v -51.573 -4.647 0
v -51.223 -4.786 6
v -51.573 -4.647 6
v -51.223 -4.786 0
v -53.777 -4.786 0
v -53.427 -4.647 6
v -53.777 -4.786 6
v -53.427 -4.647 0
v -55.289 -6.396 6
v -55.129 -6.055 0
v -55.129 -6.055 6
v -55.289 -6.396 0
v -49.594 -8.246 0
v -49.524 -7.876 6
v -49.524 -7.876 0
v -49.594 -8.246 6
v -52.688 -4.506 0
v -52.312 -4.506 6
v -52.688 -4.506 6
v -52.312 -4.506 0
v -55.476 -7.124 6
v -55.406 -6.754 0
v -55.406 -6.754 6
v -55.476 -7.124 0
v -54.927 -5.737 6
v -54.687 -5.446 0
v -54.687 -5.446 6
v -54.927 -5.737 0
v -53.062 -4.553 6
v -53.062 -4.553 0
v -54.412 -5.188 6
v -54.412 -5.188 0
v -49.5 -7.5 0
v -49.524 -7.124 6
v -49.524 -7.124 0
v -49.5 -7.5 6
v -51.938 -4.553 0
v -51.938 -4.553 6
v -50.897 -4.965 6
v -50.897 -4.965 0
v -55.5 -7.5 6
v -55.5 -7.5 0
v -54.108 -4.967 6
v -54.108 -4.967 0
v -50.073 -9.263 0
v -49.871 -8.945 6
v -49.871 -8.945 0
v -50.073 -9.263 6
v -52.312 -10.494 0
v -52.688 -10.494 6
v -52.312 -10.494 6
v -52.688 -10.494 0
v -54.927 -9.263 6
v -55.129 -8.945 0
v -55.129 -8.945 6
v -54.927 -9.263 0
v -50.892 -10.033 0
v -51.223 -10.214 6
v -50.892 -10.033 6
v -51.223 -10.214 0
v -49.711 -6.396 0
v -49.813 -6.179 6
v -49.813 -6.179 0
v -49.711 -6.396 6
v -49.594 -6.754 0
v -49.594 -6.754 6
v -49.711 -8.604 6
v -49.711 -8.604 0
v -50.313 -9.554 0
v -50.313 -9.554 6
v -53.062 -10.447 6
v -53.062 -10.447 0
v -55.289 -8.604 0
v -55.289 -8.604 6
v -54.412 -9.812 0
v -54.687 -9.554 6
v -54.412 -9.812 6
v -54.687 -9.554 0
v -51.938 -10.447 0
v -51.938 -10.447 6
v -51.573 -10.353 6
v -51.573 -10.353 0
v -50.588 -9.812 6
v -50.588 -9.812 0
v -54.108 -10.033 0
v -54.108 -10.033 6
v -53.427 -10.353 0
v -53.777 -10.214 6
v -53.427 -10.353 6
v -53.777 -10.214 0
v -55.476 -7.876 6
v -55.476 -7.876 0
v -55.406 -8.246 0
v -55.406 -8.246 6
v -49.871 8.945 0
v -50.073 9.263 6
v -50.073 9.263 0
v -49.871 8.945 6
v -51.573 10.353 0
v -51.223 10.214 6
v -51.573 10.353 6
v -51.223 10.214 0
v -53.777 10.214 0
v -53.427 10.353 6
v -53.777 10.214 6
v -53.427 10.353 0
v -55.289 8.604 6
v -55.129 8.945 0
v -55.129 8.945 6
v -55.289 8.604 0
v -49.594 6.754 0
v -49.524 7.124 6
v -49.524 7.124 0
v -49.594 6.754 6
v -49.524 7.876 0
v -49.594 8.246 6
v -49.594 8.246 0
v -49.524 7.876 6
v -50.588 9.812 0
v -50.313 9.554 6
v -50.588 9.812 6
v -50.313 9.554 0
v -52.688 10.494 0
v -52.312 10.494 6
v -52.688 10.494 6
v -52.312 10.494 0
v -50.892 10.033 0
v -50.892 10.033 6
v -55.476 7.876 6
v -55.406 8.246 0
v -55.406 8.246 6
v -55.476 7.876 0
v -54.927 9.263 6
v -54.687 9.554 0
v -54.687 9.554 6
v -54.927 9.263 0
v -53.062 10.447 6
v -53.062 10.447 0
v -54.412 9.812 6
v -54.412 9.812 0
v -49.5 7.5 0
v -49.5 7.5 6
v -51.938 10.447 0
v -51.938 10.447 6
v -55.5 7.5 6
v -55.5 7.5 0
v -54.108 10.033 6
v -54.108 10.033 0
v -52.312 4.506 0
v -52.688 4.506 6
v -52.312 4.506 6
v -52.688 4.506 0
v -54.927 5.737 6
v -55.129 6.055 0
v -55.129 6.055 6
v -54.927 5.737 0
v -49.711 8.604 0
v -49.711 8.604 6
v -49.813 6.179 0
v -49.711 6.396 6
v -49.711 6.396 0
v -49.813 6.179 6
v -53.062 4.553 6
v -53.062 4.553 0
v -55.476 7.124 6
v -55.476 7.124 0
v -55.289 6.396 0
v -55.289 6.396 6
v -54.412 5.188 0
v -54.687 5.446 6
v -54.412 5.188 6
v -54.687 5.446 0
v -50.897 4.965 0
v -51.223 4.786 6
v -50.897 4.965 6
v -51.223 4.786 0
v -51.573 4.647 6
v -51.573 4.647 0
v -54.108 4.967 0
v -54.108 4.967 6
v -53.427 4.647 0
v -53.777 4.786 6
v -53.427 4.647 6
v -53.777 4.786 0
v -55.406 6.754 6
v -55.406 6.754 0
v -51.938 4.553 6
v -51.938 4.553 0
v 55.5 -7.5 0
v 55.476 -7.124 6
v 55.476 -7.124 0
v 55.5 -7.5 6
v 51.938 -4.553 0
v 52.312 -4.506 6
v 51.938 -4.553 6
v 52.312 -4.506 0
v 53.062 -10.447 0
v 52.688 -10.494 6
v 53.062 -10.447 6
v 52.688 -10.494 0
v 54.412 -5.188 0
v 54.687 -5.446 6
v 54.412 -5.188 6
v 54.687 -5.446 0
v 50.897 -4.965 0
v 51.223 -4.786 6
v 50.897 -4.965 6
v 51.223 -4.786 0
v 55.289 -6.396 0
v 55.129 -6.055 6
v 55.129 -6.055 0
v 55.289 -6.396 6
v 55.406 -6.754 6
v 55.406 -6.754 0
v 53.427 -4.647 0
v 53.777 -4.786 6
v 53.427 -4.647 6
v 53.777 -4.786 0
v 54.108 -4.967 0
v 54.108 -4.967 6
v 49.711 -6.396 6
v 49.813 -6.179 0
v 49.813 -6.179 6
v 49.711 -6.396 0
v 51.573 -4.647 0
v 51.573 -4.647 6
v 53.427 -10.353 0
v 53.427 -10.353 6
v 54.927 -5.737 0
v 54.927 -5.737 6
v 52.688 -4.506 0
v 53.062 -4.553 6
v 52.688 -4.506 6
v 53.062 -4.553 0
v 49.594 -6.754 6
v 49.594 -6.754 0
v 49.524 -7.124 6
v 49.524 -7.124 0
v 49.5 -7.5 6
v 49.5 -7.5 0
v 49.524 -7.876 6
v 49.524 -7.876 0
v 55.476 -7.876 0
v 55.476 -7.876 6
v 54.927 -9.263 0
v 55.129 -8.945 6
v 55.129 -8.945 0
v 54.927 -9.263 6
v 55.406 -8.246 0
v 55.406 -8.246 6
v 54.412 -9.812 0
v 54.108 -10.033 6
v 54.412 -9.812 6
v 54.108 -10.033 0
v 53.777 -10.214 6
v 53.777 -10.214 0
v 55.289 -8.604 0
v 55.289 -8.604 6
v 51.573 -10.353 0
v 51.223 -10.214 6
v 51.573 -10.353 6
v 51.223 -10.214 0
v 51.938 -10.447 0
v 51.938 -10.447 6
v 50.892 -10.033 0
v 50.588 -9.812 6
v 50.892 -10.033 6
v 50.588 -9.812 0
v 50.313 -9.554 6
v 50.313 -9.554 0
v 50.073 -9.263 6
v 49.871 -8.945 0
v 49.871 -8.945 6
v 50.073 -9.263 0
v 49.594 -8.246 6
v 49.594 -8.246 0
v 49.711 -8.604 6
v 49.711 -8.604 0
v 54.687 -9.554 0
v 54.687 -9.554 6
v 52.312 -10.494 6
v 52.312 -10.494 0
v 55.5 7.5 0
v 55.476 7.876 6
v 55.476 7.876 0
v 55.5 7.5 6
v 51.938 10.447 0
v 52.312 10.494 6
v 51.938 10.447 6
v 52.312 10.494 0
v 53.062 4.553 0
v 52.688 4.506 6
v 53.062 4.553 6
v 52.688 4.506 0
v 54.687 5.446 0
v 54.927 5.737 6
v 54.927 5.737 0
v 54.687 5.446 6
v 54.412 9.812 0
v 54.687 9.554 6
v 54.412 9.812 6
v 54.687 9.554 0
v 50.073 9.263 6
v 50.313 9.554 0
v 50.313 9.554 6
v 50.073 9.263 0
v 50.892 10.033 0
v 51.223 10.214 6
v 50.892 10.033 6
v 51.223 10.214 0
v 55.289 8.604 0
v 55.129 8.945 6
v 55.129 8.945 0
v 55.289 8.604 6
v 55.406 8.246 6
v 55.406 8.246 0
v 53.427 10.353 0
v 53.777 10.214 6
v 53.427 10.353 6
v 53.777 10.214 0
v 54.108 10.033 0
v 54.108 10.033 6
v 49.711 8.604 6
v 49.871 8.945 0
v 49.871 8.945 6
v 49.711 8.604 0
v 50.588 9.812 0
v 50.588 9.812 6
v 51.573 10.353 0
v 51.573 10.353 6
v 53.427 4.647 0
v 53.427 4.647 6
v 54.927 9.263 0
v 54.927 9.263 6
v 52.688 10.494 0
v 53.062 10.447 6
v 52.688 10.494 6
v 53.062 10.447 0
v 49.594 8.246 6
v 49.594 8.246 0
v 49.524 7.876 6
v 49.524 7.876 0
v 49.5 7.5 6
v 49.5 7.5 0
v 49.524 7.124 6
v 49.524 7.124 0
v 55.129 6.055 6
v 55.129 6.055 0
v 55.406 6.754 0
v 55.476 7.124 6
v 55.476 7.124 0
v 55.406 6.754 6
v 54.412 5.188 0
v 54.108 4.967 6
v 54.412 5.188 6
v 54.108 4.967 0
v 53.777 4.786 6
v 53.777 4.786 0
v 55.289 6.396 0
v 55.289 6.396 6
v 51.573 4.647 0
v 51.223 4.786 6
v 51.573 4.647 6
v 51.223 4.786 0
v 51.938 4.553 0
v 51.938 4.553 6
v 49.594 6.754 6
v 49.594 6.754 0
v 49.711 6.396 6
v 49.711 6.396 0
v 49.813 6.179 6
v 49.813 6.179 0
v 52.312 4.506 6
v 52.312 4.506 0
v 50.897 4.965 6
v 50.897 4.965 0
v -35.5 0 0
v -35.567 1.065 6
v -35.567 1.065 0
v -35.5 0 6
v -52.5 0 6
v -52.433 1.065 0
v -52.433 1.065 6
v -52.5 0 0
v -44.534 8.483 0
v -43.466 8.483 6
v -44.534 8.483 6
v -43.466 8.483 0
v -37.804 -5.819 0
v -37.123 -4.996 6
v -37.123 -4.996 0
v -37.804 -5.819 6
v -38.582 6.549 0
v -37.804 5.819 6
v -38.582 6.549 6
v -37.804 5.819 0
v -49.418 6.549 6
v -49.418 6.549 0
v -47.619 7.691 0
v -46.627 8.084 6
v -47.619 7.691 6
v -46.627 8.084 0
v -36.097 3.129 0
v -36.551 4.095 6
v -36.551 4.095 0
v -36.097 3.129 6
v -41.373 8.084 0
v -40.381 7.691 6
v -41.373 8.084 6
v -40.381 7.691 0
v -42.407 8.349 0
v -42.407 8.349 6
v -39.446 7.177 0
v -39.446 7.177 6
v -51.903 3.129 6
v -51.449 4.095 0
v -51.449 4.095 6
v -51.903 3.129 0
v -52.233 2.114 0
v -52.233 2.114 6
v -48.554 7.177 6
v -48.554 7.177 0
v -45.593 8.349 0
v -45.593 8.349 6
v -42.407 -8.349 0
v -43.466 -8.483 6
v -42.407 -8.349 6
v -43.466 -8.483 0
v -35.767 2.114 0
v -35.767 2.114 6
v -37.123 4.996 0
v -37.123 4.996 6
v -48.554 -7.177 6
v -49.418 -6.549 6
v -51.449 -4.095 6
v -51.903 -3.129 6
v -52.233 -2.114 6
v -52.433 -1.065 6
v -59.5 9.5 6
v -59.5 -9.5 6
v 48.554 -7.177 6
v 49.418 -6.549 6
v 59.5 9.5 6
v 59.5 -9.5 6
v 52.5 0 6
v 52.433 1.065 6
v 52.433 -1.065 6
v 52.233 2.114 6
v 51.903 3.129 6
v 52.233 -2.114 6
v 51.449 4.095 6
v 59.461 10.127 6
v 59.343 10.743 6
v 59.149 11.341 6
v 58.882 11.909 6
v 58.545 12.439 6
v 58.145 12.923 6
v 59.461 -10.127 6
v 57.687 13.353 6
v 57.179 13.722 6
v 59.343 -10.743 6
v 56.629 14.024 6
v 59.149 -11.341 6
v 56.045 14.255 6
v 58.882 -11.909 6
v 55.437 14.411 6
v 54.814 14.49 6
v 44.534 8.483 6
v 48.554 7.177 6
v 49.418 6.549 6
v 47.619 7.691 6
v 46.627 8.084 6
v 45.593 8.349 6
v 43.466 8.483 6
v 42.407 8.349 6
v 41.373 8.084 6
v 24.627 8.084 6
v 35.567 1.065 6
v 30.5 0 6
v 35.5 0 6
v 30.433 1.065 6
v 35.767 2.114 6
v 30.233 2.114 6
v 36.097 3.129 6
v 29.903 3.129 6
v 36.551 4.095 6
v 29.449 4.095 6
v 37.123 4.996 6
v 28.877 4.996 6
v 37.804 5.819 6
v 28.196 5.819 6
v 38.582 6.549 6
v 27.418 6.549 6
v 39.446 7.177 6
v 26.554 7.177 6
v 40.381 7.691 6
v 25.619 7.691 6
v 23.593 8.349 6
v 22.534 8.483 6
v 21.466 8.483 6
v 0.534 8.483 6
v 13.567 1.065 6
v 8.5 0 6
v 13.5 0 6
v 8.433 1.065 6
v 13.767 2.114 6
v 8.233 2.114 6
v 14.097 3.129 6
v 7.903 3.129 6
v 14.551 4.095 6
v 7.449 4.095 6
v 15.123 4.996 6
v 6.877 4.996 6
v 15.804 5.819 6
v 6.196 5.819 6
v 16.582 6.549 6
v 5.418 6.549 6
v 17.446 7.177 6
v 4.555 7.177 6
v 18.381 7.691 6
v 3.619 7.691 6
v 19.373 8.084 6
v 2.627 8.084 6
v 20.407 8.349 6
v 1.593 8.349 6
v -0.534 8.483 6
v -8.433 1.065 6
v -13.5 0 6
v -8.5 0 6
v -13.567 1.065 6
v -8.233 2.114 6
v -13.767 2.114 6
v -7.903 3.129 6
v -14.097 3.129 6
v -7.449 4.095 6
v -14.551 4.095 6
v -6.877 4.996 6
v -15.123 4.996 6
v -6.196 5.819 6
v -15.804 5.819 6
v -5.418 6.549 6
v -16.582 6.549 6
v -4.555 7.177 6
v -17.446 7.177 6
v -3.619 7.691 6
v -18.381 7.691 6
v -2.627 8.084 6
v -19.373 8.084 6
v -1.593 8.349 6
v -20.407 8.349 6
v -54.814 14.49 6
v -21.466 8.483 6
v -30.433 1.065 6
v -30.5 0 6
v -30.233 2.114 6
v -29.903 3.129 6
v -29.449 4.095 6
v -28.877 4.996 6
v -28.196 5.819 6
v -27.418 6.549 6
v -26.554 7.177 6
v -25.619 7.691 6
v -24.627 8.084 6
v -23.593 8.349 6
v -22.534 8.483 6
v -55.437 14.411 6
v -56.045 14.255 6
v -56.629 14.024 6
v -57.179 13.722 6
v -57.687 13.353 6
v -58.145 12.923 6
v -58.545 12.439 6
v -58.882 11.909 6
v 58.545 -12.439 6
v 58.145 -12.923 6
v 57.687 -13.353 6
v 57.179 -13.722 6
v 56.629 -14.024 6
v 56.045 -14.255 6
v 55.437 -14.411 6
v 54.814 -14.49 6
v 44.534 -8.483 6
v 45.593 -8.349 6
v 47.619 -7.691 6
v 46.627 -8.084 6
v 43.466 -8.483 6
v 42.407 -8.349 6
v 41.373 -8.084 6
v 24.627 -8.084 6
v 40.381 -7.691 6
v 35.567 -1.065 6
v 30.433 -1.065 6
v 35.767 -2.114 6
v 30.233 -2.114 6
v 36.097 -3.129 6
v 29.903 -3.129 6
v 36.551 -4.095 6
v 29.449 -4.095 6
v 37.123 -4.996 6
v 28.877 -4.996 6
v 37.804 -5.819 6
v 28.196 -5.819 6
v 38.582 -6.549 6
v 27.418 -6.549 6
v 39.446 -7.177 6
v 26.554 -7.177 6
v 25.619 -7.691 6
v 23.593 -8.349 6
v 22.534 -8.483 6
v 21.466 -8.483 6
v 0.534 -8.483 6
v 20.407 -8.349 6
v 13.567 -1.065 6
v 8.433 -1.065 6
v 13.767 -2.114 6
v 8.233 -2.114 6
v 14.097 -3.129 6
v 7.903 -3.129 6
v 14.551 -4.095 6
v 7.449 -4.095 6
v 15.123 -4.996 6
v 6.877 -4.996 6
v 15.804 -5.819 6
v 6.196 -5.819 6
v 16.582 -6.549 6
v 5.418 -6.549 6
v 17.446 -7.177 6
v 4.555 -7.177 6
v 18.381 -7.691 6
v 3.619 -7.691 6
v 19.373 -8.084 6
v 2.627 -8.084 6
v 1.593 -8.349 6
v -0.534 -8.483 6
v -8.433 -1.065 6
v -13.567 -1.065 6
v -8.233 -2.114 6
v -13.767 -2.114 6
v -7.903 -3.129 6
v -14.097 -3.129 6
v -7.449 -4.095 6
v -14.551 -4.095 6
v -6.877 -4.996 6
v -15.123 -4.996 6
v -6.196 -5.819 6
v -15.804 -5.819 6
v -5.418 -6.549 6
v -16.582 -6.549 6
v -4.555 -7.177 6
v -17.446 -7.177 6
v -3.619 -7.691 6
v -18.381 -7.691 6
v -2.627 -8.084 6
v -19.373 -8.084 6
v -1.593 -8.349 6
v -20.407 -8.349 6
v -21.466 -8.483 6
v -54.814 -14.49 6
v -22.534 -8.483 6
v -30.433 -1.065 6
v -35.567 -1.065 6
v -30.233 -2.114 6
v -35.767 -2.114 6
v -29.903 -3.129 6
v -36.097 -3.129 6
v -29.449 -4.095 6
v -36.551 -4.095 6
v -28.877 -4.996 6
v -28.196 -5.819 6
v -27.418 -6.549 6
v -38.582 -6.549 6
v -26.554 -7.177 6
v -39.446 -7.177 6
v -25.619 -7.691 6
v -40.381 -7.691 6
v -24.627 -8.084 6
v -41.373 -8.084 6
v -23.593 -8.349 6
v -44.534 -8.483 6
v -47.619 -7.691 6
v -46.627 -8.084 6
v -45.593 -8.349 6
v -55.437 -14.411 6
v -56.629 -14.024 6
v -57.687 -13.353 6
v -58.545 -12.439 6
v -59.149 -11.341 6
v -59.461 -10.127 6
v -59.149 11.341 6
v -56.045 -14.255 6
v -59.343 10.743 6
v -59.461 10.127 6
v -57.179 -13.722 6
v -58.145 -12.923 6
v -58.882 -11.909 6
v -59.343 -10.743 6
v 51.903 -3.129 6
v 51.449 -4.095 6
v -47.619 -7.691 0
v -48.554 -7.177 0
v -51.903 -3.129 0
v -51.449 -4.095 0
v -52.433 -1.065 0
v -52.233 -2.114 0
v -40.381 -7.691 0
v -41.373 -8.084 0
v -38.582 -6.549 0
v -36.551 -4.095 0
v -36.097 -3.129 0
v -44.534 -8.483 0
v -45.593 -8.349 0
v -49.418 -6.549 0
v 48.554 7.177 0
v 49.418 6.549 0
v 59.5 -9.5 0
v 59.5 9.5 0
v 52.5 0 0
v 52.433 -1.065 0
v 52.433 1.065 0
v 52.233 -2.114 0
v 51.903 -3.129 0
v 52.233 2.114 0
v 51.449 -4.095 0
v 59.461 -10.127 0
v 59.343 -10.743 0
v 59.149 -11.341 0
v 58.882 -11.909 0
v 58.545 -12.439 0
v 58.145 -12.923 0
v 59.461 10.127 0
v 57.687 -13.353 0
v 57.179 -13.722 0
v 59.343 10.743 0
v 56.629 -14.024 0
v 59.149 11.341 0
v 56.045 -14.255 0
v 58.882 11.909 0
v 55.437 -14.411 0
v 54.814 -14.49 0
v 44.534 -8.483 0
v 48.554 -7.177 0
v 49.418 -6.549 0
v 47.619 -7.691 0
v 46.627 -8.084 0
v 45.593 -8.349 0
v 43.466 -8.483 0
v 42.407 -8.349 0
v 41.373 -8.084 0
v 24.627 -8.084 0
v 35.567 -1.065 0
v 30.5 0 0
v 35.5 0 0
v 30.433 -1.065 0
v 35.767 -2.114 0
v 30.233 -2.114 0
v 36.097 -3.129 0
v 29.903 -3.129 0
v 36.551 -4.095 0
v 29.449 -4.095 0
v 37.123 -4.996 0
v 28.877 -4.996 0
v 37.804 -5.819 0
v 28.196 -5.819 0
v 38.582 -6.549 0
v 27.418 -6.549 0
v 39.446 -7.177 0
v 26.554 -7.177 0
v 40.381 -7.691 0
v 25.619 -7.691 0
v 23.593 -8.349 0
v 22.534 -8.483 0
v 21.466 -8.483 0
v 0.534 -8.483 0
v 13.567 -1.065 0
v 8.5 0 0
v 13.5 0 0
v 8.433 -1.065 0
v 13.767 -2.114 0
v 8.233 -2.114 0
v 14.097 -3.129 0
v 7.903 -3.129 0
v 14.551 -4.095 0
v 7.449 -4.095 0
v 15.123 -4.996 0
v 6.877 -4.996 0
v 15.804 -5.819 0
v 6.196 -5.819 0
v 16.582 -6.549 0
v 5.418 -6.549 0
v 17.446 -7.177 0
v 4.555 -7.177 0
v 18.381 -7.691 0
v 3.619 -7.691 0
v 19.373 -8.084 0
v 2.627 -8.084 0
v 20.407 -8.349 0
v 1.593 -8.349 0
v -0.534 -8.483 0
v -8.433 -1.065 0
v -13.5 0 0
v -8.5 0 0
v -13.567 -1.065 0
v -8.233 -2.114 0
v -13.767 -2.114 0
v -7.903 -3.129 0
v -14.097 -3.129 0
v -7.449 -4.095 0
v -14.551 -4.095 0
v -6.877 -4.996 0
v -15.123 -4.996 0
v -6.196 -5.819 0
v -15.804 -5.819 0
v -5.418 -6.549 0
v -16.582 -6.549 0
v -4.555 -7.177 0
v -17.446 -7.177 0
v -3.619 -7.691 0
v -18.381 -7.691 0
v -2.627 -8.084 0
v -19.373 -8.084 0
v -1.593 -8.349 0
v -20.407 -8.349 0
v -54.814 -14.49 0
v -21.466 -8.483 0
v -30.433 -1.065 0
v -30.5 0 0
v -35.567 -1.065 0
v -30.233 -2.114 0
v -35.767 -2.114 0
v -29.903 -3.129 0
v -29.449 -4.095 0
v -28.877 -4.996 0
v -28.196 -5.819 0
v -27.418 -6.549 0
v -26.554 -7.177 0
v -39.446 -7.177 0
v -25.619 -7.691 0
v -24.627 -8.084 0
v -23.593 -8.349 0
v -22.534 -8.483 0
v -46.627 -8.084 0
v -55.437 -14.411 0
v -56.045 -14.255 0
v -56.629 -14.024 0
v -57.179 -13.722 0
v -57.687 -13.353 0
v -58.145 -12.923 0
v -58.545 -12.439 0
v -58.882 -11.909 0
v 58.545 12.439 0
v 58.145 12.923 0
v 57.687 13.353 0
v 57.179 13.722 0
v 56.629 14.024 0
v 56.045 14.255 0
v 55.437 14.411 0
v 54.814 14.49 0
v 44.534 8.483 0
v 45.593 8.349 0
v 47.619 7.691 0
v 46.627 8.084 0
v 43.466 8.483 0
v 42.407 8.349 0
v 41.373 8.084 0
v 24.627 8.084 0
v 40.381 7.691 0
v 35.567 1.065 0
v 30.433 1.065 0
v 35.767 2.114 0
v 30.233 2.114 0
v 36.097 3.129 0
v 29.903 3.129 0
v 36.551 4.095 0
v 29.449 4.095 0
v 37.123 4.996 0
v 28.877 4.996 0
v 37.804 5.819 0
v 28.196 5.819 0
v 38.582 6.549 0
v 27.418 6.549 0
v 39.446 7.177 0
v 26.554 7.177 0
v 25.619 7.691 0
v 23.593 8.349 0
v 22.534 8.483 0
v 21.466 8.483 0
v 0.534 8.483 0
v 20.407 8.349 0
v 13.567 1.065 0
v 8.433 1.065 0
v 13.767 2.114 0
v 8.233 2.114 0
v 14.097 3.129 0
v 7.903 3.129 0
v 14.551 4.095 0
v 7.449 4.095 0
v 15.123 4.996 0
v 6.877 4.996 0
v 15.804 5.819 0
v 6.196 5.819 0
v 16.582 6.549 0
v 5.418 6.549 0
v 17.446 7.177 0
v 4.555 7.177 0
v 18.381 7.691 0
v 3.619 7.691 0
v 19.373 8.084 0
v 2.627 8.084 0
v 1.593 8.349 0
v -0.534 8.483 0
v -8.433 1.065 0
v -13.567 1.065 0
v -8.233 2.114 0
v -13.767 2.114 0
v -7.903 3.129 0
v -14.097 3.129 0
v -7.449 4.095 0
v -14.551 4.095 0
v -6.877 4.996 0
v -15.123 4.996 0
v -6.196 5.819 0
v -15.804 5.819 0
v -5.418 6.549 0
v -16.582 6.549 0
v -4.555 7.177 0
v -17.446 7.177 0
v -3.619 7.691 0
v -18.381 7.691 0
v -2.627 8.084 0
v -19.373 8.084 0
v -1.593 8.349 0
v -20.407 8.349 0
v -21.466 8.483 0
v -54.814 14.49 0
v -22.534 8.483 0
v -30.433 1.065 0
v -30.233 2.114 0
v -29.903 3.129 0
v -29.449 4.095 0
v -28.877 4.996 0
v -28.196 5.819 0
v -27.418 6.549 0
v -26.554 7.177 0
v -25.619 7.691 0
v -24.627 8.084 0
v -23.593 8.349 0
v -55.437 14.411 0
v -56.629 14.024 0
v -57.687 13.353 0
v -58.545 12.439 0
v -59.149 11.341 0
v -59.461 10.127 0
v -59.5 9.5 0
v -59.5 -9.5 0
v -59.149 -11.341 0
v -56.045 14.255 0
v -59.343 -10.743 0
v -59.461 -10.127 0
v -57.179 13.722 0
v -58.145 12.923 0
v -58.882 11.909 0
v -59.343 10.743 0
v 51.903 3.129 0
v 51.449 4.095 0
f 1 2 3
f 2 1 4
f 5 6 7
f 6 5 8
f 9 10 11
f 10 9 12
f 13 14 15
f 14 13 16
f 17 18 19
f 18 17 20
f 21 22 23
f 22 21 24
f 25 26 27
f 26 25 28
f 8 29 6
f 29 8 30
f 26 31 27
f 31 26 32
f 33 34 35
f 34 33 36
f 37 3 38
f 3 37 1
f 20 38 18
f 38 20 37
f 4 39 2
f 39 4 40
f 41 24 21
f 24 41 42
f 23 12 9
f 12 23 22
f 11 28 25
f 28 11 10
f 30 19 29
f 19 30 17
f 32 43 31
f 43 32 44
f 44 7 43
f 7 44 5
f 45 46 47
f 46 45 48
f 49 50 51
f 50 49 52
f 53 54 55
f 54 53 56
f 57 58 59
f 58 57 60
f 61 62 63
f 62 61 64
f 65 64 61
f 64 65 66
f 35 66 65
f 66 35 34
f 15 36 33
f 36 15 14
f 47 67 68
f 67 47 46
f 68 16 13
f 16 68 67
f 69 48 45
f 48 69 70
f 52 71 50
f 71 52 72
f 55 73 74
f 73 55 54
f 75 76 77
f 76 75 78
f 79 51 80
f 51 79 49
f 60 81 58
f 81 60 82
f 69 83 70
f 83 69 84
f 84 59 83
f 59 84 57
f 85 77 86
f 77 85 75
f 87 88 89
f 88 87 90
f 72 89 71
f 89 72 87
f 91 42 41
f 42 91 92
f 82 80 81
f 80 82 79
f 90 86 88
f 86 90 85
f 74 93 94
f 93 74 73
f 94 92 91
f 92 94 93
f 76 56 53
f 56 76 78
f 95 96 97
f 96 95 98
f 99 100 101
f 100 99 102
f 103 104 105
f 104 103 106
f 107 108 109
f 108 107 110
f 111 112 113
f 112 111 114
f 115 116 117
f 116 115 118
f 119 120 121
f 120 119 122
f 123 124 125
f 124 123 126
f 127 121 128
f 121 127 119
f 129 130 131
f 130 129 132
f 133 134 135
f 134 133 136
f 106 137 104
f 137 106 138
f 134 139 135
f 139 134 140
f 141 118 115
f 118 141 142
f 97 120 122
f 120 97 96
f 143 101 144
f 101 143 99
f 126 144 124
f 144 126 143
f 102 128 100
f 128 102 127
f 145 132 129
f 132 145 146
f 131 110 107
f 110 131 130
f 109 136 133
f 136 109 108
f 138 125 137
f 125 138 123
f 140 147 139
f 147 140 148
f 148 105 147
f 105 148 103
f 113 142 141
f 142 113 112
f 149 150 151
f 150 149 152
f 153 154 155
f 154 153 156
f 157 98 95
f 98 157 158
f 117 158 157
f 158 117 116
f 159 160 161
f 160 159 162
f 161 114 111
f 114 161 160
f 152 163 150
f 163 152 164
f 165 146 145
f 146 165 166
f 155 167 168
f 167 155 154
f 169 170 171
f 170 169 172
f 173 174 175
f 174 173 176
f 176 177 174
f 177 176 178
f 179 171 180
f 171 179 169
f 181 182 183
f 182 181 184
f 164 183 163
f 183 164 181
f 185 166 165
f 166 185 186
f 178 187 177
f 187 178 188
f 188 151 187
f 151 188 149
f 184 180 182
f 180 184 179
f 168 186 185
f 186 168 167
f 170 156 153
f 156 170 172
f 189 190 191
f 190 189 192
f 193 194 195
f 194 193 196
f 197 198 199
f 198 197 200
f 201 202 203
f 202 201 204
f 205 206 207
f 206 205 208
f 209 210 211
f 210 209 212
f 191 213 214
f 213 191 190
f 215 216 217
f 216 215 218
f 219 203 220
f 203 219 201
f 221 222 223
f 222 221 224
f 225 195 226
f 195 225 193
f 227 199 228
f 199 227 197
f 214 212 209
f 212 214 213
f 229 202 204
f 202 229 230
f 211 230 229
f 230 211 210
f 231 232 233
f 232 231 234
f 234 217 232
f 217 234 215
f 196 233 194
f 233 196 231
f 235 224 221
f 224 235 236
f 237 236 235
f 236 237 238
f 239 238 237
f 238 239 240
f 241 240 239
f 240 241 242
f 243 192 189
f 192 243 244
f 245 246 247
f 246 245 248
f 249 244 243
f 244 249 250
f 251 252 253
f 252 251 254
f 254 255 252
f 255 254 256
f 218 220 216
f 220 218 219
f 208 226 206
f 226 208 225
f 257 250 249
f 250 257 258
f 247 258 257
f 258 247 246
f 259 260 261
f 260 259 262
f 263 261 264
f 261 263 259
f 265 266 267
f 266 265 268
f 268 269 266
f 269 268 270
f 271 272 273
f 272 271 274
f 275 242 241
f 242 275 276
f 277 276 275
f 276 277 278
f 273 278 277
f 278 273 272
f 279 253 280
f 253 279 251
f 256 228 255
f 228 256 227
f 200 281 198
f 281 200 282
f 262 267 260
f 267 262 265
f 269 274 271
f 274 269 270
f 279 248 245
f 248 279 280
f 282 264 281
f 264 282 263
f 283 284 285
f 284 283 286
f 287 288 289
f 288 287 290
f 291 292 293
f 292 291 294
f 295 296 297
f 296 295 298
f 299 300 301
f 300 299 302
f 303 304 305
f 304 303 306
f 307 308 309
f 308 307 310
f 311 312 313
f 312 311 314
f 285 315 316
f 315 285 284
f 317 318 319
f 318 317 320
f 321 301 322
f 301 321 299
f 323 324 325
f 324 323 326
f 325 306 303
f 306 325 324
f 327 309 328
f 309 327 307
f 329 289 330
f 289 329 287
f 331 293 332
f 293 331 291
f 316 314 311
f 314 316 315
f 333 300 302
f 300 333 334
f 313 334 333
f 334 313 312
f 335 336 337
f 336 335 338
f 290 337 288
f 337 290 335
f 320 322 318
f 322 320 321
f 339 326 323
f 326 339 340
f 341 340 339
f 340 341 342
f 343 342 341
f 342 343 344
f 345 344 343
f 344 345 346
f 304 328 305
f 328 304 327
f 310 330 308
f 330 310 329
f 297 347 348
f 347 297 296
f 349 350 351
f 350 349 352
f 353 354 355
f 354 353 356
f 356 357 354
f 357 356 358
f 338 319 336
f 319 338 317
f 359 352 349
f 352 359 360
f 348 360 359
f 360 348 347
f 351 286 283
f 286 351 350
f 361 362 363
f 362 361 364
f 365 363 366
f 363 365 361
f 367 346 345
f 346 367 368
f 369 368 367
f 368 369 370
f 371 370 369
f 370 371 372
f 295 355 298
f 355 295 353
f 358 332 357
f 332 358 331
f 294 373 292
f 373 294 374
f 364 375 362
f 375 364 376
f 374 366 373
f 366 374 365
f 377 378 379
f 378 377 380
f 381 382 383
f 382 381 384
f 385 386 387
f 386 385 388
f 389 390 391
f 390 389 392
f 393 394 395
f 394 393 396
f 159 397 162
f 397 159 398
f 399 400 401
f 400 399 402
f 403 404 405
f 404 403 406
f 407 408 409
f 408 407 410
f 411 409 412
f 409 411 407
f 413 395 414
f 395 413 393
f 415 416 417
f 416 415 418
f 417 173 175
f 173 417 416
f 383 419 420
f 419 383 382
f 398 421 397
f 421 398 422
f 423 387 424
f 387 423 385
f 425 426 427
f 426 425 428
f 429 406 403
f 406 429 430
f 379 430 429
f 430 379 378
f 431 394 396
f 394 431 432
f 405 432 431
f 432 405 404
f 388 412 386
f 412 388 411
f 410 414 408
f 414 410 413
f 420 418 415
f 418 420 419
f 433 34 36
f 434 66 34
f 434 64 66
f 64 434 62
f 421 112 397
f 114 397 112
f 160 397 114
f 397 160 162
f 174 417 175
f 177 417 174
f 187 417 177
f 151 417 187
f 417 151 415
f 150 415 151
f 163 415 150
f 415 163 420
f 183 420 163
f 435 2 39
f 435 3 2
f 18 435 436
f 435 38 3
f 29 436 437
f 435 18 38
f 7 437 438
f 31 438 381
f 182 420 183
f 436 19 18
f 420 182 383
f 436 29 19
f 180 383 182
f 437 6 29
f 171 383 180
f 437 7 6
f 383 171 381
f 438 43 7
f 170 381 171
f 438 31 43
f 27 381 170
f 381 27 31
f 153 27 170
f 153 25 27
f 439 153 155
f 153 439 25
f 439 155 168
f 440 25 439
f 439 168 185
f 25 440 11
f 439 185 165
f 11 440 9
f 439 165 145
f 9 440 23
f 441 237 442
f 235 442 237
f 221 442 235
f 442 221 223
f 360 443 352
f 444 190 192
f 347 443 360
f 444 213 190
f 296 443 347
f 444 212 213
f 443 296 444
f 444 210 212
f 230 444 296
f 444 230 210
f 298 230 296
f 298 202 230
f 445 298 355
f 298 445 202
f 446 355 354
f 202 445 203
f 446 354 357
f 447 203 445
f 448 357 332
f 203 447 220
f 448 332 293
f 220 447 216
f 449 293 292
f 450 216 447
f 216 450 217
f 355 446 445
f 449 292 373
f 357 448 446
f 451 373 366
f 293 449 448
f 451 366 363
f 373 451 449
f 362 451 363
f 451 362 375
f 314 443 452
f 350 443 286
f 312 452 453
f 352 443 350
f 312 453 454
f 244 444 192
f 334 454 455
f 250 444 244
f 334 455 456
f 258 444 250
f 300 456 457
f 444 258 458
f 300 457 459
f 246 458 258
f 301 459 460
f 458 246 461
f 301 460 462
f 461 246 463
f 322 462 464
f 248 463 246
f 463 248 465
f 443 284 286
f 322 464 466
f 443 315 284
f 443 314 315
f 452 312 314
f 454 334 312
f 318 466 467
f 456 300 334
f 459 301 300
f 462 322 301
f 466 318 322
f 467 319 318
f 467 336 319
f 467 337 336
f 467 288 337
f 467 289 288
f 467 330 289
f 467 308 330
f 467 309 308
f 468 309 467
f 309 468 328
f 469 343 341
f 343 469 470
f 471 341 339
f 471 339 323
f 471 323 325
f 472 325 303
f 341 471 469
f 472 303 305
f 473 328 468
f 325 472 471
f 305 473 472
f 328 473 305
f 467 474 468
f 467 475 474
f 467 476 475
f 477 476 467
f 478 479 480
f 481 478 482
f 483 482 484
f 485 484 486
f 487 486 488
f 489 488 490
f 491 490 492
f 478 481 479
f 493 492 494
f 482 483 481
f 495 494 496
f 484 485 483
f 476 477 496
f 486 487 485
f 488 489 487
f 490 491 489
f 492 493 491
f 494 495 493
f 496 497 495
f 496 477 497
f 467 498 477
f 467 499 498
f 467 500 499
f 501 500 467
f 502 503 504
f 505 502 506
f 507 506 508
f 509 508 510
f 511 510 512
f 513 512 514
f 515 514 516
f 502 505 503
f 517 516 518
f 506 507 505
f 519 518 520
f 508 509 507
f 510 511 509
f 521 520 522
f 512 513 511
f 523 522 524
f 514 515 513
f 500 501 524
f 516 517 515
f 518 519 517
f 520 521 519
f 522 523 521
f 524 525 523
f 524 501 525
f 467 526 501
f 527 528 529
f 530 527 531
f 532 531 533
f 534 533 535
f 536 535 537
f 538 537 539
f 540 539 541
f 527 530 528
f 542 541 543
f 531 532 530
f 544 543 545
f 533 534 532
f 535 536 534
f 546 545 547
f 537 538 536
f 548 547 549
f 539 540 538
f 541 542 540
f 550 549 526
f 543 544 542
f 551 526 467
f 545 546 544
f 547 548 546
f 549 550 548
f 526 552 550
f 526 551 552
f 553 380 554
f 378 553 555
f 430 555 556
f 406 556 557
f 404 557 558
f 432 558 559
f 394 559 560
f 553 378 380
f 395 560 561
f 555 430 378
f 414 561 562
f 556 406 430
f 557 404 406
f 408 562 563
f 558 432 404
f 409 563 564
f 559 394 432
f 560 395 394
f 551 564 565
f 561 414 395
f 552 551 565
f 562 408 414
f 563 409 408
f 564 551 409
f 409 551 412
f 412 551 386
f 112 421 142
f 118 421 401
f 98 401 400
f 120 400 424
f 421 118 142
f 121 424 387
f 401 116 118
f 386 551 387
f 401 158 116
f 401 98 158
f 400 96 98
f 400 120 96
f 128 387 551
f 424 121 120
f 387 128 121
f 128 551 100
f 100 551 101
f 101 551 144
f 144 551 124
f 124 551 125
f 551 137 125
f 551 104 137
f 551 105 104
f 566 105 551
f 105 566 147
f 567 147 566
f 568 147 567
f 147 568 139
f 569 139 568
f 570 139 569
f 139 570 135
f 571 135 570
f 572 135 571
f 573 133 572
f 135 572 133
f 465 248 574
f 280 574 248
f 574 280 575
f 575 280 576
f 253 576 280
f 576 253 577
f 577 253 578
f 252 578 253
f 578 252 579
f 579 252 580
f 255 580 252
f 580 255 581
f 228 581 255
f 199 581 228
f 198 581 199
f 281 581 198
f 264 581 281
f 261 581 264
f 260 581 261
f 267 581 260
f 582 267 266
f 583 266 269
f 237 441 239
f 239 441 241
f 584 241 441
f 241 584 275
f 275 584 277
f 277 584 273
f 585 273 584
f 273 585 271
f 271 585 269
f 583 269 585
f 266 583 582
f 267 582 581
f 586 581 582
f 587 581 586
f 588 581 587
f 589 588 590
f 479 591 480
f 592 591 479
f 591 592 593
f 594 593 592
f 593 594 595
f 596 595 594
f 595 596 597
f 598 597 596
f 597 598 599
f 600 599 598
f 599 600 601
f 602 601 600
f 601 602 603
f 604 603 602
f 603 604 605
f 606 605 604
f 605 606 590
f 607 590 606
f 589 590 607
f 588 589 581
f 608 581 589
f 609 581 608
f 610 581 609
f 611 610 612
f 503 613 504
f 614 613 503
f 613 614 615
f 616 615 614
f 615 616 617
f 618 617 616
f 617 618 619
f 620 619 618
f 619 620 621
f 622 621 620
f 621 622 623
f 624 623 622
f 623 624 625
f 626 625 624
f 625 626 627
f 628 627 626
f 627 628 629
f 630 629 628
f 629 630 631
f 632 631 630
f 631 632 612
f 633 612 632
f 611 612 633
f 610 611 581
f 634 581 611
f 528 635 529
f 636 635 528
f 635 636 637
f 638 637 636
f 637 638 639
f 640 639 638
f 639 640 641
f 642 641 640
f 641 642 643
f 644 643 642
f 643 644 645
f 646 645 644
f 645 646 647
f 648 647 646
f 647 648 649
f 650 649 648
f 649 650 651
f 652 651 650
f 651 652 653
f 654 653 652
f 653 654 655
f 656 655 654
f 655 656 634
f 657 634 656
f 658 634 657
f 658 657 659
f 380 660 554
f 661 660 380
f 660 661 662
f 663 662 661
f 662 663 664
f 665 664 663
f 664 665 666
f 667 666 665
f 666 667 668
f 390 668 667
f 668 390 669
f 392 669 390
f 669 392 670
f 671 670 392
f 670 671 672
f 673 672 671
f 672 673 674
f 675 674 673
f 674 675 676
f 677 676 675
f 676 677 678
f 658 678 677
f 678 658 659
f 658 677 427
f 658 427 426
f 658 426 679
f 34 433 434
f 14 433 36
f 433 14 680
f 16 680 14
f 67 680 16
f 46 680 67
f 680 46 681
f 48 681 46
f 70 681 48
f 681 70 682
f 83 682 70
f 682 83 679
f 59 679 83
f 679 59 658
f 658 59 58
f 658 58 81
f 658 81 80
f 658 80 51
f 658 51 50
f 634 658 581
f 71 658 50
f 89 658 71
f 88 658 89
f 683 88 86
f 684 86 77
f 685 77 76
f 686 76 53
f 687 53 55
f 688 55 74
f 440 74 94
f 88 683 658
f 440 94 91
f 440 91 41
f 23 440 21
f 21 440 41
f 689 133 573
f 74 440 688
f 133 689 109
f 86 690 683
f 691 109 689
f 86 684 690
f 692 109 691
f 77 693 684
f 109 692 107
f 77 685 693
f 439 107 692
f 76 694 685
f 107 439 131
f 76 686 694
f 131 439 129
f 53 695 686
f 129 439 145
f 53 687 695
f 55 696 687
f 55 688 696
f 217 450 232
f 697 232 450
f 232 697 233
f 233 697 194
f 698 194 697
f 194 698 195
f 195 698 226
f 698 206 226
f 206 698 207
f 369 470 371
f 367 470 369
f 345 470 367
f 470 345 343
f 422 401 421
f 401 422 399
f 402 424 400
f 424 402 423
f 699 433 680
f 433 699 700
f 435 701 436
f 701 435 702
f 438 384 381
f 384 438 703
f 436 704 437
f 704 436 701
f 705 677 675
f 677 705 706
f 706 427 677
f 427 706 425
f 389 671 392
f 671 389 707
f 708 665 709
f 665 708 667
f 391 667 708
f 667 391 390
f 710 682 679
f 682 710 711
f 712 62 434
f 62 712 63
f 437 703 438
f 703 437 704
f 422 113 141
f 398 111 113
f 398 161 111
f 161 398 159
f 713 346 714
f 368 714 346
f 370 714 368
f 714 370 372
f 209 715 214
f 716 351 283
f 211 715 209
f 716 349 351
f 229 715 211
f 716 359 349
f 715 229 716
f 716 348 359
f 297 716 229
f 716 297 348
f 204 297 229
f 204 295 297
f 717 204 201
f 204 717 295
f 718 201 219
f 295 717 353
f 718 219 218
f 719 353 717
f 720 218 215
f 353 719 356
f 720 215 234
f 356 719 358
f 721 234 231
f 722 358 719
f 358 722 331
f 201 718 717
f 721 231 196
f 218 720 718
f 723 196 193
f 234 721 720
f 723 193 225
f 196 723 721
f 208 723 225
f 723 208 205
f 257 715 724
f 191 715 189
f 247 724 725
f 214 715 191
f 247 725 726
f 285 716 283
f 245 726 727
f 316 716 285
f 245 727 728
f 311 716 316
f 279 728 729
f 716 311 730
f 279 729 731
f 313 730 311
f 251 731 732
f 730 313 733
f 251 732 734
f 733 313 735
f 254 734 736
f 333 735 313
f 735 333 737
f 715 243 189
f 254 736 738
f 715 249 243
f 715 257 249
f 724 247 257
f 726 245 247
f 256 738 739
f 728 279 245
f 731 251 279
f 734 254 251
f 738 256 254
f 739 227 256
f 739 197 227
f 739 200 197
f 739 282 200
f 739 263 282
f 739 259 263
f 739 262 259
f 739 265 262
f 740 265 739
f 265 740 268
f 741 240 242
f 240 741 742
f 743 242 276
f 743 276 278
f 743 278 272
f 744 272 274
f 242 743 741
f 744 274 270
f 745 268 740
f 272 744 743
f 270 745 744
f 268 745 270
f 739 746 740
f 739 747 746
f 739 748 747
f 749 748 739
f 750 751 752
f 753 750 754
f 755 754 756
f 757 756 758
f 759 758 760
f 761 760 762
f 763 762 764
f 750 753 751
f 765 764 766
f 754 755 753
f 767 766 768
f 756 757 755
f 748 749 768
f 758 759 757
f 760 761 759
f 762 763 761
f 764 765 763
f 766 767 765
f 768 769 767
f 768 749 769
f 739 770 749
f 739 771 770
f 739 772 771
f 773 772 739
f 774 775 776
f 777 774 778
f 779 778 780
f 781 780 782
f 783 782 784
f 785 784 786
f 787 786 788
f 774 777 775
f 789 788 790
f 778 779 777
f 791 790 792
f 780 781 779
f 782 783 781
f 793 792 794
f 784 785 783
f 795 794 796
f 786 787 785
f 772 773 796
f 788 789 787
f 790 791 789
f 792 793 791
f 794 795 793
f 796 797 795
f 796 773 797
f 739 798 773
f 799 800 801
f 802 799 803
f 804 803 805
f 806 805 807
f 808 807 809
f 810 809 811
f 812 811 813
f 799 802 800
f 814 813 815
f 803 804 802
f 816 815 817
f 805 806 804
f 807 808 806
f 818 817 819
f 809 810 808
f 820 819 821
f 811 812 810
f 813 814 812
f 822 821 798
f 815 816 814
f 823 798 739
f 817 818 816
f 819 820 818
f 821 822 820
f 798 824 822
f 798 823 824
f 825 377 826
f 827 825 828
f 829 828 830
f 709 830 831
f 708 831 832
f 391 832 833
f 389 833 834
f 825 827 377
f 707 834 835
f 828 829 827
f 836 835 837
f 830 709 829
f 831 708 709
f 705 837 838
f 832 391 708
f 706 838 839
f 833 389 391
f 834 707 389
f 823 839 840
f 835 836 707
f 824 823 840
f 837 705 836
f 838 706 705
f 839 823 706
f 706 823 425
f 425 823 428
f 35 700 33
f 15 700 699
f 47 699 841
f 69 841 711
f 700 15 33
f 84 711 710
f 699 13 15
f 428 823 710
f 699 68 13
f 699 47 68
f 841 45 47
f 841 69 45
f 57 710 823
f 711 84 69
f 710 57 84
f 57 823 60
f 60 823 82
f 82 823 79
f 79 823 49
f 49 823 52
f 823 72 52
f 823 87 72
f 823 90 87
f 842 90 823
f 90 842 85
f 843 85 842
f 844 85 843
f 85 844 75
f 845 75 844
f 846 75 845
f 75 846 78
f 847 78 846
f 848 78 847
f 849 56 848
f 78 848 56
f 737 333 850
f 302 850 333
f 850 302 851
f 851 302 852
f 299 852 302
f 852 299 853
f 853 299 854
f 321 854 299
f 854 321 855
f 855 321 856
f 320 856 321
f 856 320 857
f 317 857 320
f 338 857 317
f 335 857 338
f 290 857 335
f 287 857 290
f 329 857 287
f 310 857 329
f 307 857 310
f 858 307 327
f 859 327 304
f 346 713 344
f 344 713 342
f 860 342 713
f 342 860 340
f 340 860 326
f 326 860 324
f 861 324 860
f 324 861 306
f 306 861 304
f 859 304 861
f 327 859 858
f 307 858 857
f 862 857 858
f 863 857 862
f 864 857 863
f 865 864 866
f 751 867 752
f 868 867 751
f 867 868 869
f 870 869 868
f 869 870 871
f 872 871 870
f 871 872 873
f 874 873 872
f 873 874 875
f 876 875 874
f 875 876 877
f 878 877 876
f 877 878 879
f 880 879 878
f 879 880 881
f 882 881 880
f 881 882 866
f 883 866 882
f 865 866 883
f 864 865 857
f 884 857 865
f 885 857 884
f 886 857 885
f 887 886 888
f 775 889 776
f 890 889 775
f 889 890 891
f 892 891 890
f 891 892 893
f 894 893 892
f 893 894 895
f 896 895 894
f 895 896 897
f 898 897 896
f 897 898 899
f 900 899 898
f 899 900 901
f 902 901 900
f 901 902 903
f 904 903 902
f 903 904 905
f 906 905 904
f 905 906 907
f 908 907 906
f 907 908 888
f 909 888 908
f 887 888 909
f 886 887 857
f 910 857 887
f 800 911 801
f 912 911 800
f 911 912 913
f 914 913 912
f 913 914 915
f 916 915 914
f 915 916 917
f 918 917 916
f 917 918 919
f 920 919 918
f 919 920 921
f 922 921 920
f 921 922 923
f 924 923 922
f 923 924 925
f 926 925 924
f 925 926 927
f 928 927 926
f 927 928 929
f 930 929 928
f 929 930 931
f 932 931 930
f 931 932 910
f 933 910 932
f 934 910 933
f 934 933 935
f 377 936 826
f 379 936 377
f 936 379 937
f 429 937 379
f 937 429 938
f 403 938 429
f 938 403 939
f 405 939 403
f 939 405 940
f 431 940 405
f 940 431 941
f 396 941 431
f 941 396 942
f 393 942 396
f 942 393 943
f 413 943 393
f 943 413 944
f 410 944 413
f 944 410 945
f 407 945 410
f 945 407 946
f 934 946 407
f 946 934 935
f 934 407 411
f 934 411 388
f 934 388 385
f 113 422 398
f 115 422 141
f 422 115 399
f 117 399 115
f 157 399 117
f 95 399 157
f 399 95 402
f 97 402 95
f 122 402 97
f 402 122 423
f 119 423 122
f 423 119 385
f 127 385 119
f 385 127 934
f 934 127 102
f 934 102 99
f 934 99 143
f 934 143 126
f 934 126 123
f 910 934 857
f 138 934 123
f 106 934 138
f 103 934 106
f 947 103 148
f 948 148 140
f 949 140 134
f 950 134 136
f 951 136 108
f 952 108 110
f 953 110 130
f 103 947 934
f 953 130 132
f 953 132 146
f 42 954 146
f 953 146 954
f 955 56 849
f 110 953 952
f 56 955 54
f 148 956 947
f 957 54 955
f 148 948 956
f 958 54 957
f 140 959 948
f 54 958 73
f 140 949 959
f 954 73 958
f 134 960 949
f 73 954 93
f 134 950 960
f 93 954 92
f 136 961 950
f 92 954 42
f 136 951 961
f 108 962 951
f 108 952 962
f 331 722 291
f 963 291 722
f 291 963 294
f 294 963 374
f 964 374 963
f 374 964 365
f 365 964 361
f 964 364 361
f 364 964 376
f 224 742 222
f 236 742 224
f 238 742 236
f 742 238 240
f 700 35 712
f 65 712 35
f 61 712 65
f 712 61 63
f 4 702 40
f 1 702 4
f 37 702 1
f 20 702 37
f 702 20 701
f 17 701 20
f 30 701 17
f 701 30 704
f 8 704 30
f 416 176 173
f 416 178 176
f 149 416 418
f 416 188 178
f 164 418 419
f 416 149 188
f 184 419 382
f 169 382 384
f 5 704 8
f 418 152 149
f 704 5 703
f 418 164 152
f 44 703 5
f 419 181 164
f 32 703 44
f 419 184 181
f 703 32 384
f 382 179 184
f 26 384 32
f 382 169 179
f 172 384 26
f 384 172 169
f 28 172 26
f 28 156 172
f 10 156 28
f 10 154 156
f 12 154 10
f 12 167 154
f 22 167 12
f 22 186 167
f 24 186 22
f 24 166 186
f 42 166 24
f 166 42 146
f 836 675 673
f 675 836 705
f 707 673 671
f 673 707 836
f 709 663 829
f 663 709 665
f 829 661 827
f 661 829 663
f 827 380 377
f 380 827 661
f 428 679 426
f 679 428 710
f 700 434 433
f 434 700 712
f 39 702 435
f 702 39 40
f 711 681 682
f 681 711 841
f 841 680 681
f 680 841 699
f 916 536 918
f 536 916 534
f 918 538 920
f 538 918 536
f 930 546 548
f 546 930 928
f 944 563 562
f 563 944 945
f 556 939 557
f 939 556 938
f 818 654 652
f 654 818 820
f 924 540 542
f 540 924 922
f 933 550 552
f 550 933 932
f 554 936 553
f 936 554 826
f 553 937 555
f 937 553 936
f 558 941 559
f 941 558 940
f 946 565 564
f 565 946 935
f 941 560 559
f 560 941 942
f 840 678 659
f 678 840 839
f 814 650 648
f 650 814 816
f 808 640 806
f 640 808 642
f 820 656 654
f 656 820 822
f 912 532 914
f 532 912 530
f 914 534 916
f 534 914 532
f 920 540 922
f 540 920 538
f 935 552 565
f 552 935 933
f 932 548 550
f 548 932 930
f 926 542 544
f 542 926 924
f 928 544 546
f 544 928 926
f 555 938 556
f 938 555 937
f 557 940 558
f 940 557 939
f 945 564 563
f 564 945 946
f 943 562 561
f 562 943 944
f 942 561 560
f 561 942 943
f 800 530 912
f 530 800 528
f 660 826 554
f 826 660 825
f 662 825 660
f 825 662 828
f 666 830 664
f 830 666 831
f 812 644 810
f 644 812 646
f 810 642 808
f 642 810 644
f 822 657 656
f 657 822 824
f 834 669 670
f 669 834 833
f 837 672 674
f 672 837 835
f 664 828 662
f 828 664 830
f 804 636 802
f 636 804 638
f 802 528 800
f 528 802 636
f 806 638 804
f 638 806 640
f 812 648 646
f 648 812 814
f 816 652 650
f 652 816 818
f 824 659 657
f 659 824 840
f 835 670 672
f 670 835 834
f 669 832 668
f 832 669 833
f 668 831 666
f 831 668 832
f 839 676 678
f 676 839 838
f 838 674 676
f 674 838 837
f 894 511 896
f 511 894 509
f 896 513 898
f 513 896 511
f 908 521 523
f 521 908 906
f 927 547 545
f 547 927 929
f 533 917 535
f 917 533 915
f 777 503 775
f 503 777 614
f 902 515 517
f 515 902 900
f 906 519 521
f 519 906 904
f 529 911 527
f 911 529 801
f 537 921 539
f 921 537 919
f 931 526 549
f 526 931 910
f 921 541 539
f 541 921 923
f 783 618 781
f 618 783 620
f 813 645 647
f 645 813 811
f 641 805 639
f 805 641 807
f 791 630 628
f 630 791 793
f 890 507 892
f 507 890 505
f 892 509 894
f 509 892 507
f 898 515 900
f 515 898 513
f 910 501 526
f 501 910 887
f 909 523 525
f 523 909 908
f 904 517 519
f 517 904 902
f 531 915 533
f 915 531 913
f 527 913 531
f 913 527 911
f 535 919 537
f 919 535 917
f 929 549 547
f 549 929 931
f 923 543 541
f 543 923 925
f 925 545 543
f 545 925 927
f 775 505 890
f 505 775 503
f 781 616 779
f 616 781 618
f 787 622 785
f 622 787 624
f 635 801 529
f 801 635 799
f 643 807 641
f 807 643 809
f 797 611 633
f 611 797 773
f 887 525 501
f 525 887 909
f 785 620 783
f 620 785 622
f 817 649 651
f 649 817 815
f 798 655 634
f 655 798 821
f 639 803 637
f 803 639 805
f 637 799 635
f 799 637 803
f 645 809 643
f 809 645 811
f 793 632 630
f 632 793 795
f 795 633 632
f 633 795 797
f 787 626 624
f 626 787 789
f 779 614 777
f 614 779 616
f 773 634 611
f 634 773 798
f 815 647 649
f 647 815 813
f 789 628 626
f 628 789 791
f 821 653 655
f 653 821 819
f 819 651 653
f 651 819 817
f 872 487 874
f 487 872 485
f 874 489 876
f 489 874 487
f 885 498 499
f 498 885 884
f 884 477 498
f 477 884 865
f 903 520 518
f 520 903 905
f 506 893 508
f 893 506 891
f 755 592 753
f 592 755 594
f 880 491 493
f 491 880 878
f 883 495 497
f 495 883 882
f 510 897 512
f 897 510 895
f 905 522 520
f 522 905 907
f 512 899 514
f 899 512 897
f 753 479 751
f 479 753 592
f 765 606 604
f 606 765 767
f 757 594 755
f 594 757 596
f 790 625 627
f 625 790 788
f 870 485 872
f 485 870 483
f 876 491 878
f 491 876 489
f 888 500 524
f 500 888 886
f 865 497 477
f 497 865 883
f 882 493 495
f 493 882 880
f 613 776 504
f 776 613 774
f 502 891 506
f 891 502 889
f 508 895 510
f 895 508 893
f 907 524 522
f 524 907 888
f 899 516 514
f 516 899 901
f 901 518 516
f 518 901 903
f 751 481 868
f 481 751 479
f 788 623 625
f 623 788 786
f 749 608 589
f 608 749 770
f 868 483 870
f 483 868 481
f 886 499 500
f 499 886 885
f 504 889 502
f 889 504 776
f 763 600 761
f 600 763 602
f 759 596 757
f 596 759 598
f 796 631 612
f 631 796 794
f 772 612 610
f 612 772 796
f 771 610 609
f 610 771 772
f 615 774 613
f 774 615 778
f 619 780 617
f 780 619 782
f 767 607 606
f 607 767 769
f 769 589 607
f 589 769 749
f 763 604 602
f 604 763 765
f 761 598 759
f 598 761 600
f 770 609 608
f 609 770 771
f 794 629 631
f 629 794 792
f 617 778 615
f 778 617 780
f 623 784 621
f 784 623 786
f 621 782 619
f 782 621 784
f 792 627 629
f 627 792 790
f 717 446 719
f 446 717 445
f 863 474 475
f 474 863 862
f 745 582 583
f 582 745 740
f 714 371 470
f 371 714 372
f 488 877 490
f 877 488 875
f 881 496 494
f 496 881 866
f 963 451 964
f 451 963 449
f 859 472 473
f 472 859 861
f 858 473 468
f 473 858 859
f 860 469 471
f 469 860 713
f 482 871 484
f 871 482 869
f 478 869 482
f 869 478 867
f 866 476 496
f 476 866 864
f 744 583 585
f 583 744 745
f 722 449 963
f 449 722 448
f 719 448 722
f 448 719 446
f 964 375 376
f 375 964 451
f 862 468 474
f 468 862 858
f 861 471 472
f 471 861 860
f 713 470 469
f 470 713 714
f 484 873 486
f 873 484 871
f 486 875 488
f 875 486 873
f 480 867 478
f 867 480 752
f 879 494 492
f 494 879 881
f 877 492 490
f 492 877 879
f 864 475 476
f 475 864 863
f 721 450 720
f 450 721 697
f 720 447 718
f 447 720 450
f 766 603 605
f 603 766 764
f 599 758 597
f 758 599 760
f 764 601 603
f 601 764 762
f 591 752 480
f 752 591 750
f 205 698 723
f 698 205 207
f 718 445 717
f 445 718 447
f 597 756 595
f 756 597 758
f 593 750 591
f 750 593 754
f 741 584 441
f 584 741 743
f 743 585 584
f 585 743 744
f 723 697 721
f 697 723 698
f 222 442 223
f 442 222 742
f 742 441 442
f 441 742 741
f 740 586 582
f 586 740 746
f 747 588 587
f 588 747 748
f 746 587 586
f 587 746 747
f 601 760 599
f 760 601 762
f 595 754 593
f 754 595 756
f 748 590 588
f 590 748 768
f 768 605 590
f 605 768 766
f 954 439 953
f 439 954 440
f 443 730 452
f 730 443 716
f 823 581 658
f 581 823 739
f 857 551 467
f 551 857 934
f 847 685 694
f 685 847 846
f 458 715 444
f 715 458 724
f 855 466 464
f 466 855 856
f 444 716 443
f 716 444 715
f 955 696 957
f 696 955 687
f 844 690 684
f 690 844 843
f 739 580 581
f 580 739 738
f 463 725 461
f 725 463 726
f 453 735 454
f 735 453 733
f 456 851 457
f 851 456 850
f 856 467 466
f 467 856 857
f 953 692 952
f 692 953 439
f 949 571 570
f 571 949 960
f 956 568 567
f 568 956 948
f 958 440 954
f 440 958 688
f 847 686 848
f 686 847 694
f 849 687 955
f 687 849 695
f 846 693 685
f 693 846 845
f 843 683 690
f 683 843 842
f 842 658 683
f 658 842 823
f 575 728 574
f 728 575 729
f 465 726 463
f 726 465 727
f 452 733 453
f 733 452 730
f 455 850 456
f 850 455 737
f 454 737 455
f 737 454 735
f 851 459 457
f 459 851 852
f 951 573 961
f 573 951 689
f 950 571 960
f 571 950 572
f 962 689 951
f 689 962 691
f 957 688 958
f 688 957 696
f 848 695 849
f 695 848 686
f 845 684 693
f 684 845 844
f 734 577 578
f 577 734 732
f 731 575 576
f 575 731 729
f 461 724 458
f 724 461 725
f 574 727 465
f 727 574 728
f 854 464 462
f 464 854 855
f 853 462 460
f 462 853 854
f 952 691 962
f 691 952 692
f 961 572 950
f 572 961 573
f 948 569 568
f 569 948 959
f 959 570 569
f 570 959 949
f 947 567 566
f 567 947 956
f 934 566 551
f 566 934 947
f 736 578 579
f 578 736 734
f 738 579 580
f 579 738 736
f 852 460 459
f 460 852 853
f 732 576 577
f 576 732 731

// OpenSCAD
$fn = 50;


difference() {
	union() {
		hull() {
			translate(v = [-54.5000000000, 9.5000000000, 0]) {
				cylinder(h = 6, r = 5);
			}
			translate(v = [54.5000000000, 9.5000000000, 0]) {
				cylinder(h = 6, r = 5);
			}
			translate(v = [-54.5000000000, -9.5000000000, 0]) {
				cylinder(h = 6, r = 5);
			}
			translate(v = [54.5000000000, -9.5000000000, 0]) {
				cylinder(h = 6, r = 5);
			}
		}
	}
	union() {
		#translate(v = [-52.5000000000, -7.5000000000, -100.0000000000]) {
			cylinder(h = 200, r = 3.0000000000);
		}
		#translate(v = [-52.5000000000, 7.5000000000, -100.0000000000]) {
			cylinder(h = 200, r = 3.0000000000);
		}
		#translate(v = [52.5000000000, -7.5000000000, -100.0000000000]) {
			cylinder(h = 200, r = 3.0000000000);
		}
		#translate(v = [52.5000000000, 7.5000000000, -100.0000000000]) {
			cylinder(h = 200, r = 3.0000000000);
		}
		#translate(v = [-44.0000000000, 0, 0]) {
			cylinder(h = 6, r = 8.5000000000);
		}
		#translate(v = [-22.0000000000, 0, 0]) {
			cylinder(h = 6, r = 8.5000000000);
		}
		#cylinder(h = 6, r = 8.5000000000);
		#translate(v = [22.0000000000, 0, 0]) {
			cylinder(h = 6, r = 8.5000000000);
		}
		#translate(v = [44.0000000000, 0, 0]) {
			cylinder(h = 6, r = 8.5000000000);
		}
	}
}
